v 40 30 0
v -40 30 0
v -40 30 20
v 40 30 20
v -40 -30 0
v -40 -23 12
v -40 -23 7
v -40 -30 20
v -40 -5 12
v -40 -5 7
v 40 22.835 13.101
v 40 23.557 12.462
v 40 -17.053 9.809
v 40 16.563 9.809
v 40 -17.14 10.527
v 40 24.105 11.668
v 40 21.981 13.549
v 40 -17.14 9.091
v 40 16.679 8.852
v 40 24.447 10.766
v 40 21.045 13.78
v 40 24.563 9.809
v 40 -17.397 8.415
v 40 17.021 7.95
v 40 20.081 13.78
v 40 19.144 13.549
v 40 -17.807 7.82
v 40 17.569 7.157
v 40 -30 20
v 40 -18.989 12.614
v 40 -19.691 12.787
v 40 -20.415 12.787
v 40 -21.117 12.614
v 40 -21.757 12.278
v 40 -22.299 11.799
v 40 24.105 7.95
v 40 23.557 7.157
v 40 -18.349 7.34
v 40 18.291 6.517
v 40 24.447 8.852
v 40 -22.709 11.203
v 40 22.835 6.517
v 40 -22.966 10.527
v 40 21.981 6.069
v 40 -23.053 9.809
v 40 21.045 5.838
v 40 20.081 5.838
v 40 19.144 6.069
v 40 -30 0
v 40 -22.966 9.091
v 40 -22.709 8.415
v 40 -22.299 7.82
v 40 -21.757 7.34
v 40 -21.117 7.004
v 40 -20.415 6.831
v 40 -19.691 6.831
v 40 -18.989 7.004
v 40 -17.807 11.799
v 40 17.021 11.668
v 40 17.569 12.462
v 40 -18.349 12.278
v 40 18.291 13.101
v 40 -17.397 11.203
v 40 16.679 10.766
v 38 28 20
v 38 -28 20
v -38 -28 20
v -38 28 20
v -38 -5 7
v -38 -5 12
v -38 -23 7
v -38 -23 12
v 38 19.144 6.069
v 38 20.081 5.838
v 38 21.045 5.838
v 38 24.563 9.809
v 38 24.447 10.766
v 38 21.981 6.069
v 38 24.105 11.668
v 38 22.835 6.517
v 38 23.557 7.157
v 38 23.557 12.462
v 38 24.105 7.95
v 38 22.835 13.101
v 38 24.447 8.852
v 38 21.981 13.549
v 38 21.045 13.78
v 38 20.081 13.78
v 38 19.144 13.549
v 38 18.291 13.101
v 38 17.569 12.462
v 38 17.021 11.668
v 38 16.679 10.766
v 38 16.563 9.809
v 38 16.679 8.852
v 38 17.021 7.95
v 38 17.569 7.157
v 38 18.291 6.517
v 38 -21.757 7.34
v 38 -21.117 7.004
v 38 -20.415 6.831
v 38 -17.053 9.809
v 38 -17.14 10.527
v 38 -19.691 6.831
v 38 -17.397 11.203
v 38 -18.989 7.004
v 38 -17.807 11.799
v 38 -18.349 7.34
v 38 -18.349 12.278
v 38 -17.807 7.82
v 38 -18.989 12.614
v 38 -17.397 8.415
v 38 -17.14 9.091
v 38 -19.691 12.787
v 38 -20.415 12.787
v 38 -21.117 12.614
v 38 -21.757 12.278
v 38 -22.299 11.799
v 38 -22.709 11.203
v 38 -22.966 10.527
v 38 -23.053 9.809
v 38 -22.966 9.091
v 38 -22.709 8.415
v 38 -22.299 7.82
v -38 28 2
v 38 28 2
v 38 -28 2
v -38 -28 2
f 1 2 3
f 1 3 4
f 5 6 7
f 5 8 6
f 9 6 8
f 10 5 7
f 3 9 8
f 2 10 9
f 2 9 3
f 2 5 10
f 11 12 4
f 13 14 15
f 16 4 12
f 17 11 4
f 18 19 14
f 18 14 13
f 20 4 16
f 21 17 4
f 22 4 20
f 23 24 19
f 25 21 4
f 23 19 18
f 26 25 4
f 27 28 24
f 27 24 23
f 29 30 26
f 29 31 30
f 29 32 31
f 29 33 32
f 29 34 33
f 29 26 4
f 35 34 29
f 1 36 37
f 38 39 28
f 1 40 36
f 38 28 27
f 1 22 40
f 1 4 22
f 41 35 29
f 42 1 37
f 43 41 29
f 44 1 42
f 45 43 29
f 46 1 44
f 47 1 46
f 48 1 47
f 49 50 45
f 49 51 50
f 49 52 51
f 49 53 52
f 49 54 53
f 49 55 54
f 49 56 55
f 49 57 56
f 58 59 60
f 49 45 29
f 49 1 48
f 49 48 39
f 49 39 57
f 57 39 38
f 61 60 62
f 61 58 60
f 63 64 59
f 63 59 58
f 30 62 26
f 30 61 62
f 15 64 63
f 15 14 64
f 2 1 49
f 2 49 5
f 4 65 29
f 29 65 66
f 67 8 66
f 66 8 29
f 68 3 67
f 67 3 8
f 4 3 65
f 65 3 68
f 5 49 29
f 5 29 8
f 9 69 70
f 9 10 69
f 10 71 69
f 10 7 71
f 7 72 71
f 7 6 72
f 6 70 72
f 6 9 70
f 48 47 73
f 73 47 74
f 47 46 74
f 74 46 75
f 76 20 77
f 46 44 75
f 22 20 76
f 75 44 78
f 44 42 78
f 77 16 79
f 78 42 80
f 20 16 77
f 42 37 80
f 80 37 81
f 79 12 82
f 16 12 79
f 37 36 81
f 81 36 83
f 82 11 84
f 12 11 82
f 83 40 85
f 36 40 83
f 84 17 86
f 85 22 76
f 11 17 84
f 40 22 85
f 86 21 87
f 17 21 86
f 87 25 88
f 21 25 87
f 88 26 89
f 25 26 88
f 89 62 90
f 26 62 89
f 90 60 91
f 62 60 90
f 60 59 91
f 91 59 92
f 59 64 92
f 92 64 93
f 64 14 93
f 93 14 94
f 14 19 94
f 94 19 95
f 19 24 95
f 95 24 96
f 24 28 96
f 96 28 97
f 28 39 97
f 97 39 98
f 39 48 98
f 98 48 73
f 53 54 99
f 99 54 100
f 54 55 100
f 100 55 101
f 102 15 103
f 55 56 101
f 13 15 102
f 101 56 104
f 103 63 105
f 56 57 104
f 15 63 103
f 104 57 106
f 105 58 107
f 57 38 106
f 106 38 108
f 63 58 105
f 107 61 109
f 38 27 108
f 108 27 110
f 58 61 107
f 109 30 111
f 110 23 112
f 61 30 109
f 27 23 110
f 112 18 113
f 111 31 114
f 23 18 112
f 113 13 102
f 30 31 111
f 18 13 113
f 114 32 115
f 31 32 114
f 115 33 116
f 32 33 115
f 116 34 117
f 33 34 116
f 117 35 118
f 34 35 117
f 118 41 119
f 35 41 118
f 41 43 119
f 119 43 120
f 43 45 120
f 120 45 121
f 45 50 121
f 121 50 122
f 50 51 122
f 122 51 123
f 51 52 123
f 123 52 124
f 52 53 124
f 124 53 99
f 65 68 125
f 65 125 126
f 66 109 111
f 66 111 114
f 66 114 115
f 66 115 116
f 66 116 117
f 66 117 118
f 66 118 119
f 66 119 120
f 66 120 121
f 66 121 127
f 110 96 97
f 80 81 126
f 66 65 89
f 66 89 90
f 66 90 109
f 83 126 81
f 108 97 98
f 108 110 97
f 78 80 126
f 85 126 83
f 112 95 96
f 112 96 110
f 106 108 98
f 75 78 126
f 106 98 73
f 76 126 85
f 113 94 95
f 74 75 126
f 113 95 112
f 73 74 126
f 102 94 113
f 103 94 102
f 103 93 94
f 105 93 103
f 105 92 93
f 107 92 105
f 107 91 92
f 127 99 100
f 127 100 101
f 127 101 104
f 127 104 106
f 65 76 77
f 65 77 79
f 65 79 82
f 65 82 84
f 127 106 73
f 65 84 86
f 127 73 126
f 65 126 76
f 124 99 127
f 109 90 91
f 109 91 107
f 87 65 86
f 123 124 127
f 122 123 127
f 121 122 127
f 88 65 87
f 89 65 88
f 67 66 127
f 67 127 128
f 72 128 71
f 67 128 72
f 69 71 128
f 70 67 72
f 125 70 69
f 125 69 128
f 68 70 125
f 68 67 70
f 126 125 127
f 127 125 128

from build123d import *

# Parameters (mm, degrees)
SKETCH_W        = 80
SKETCH_H        = 60
PAD_DEPTH       = 20
SKETCH001_W     = 76
SKETCH001_H     = 56
POCKET_DEPTH    = 18
SKETCH002_W     = 18
SKETCH002_H     = 5
POCKET001_DEPTH = 5
SKETCH003_R     = 4
SKETCH003_R_2   = 3
POCKET002_DEPTH = 5


with BuildPart() as part:
    # Sketch → Pad (new body)
    with BuildSketch(Plane.XY):
        Rectangle(SKETCH_W, SKETCH_H)
    extrude(amount=PAD_DEPTH)

    # Sketch001 (on Face6 of Pad) → Pocket (cut)
    with BuildSketch(Plane.XY.offset(20)):
        Rectangle(SKETCH001_W, SKETCH001_H)
    extrude(amount=-POCKET_DEPTH, mode=Mode.SUBTRACT)

    # Sketch002 (on Face2 of Pocket) → Pocket001 (cut)
    with BuildSketch(Plane(origin=(-40, 0, 0), x_dir=(0, -1, 0), z_dir=(-1, 0, 0))):
        with Locations((14, 9.5)):
            Rectangle(SKETCH002_W, SKETCH002_H)
    extrude(amount=-POCKET001_DEPTH, mode=Mode.SUBTRACT)

    # Sketch003 (on Face3 of Pocket001) → Pocket002 (cut)
    with BuildSketch(Plane.YZ.offset(40)):
        with Locations((20.562784, 9.80915)):
            Circle(SKETCH003_R)
        with Locations((-20.052979, 9.809152)):
            Circle(SKETCH003_R_2)
    extrude(amount=-POCKET002_DEPTH, mode=Mode.SUBTRACT)


solid = part.part
